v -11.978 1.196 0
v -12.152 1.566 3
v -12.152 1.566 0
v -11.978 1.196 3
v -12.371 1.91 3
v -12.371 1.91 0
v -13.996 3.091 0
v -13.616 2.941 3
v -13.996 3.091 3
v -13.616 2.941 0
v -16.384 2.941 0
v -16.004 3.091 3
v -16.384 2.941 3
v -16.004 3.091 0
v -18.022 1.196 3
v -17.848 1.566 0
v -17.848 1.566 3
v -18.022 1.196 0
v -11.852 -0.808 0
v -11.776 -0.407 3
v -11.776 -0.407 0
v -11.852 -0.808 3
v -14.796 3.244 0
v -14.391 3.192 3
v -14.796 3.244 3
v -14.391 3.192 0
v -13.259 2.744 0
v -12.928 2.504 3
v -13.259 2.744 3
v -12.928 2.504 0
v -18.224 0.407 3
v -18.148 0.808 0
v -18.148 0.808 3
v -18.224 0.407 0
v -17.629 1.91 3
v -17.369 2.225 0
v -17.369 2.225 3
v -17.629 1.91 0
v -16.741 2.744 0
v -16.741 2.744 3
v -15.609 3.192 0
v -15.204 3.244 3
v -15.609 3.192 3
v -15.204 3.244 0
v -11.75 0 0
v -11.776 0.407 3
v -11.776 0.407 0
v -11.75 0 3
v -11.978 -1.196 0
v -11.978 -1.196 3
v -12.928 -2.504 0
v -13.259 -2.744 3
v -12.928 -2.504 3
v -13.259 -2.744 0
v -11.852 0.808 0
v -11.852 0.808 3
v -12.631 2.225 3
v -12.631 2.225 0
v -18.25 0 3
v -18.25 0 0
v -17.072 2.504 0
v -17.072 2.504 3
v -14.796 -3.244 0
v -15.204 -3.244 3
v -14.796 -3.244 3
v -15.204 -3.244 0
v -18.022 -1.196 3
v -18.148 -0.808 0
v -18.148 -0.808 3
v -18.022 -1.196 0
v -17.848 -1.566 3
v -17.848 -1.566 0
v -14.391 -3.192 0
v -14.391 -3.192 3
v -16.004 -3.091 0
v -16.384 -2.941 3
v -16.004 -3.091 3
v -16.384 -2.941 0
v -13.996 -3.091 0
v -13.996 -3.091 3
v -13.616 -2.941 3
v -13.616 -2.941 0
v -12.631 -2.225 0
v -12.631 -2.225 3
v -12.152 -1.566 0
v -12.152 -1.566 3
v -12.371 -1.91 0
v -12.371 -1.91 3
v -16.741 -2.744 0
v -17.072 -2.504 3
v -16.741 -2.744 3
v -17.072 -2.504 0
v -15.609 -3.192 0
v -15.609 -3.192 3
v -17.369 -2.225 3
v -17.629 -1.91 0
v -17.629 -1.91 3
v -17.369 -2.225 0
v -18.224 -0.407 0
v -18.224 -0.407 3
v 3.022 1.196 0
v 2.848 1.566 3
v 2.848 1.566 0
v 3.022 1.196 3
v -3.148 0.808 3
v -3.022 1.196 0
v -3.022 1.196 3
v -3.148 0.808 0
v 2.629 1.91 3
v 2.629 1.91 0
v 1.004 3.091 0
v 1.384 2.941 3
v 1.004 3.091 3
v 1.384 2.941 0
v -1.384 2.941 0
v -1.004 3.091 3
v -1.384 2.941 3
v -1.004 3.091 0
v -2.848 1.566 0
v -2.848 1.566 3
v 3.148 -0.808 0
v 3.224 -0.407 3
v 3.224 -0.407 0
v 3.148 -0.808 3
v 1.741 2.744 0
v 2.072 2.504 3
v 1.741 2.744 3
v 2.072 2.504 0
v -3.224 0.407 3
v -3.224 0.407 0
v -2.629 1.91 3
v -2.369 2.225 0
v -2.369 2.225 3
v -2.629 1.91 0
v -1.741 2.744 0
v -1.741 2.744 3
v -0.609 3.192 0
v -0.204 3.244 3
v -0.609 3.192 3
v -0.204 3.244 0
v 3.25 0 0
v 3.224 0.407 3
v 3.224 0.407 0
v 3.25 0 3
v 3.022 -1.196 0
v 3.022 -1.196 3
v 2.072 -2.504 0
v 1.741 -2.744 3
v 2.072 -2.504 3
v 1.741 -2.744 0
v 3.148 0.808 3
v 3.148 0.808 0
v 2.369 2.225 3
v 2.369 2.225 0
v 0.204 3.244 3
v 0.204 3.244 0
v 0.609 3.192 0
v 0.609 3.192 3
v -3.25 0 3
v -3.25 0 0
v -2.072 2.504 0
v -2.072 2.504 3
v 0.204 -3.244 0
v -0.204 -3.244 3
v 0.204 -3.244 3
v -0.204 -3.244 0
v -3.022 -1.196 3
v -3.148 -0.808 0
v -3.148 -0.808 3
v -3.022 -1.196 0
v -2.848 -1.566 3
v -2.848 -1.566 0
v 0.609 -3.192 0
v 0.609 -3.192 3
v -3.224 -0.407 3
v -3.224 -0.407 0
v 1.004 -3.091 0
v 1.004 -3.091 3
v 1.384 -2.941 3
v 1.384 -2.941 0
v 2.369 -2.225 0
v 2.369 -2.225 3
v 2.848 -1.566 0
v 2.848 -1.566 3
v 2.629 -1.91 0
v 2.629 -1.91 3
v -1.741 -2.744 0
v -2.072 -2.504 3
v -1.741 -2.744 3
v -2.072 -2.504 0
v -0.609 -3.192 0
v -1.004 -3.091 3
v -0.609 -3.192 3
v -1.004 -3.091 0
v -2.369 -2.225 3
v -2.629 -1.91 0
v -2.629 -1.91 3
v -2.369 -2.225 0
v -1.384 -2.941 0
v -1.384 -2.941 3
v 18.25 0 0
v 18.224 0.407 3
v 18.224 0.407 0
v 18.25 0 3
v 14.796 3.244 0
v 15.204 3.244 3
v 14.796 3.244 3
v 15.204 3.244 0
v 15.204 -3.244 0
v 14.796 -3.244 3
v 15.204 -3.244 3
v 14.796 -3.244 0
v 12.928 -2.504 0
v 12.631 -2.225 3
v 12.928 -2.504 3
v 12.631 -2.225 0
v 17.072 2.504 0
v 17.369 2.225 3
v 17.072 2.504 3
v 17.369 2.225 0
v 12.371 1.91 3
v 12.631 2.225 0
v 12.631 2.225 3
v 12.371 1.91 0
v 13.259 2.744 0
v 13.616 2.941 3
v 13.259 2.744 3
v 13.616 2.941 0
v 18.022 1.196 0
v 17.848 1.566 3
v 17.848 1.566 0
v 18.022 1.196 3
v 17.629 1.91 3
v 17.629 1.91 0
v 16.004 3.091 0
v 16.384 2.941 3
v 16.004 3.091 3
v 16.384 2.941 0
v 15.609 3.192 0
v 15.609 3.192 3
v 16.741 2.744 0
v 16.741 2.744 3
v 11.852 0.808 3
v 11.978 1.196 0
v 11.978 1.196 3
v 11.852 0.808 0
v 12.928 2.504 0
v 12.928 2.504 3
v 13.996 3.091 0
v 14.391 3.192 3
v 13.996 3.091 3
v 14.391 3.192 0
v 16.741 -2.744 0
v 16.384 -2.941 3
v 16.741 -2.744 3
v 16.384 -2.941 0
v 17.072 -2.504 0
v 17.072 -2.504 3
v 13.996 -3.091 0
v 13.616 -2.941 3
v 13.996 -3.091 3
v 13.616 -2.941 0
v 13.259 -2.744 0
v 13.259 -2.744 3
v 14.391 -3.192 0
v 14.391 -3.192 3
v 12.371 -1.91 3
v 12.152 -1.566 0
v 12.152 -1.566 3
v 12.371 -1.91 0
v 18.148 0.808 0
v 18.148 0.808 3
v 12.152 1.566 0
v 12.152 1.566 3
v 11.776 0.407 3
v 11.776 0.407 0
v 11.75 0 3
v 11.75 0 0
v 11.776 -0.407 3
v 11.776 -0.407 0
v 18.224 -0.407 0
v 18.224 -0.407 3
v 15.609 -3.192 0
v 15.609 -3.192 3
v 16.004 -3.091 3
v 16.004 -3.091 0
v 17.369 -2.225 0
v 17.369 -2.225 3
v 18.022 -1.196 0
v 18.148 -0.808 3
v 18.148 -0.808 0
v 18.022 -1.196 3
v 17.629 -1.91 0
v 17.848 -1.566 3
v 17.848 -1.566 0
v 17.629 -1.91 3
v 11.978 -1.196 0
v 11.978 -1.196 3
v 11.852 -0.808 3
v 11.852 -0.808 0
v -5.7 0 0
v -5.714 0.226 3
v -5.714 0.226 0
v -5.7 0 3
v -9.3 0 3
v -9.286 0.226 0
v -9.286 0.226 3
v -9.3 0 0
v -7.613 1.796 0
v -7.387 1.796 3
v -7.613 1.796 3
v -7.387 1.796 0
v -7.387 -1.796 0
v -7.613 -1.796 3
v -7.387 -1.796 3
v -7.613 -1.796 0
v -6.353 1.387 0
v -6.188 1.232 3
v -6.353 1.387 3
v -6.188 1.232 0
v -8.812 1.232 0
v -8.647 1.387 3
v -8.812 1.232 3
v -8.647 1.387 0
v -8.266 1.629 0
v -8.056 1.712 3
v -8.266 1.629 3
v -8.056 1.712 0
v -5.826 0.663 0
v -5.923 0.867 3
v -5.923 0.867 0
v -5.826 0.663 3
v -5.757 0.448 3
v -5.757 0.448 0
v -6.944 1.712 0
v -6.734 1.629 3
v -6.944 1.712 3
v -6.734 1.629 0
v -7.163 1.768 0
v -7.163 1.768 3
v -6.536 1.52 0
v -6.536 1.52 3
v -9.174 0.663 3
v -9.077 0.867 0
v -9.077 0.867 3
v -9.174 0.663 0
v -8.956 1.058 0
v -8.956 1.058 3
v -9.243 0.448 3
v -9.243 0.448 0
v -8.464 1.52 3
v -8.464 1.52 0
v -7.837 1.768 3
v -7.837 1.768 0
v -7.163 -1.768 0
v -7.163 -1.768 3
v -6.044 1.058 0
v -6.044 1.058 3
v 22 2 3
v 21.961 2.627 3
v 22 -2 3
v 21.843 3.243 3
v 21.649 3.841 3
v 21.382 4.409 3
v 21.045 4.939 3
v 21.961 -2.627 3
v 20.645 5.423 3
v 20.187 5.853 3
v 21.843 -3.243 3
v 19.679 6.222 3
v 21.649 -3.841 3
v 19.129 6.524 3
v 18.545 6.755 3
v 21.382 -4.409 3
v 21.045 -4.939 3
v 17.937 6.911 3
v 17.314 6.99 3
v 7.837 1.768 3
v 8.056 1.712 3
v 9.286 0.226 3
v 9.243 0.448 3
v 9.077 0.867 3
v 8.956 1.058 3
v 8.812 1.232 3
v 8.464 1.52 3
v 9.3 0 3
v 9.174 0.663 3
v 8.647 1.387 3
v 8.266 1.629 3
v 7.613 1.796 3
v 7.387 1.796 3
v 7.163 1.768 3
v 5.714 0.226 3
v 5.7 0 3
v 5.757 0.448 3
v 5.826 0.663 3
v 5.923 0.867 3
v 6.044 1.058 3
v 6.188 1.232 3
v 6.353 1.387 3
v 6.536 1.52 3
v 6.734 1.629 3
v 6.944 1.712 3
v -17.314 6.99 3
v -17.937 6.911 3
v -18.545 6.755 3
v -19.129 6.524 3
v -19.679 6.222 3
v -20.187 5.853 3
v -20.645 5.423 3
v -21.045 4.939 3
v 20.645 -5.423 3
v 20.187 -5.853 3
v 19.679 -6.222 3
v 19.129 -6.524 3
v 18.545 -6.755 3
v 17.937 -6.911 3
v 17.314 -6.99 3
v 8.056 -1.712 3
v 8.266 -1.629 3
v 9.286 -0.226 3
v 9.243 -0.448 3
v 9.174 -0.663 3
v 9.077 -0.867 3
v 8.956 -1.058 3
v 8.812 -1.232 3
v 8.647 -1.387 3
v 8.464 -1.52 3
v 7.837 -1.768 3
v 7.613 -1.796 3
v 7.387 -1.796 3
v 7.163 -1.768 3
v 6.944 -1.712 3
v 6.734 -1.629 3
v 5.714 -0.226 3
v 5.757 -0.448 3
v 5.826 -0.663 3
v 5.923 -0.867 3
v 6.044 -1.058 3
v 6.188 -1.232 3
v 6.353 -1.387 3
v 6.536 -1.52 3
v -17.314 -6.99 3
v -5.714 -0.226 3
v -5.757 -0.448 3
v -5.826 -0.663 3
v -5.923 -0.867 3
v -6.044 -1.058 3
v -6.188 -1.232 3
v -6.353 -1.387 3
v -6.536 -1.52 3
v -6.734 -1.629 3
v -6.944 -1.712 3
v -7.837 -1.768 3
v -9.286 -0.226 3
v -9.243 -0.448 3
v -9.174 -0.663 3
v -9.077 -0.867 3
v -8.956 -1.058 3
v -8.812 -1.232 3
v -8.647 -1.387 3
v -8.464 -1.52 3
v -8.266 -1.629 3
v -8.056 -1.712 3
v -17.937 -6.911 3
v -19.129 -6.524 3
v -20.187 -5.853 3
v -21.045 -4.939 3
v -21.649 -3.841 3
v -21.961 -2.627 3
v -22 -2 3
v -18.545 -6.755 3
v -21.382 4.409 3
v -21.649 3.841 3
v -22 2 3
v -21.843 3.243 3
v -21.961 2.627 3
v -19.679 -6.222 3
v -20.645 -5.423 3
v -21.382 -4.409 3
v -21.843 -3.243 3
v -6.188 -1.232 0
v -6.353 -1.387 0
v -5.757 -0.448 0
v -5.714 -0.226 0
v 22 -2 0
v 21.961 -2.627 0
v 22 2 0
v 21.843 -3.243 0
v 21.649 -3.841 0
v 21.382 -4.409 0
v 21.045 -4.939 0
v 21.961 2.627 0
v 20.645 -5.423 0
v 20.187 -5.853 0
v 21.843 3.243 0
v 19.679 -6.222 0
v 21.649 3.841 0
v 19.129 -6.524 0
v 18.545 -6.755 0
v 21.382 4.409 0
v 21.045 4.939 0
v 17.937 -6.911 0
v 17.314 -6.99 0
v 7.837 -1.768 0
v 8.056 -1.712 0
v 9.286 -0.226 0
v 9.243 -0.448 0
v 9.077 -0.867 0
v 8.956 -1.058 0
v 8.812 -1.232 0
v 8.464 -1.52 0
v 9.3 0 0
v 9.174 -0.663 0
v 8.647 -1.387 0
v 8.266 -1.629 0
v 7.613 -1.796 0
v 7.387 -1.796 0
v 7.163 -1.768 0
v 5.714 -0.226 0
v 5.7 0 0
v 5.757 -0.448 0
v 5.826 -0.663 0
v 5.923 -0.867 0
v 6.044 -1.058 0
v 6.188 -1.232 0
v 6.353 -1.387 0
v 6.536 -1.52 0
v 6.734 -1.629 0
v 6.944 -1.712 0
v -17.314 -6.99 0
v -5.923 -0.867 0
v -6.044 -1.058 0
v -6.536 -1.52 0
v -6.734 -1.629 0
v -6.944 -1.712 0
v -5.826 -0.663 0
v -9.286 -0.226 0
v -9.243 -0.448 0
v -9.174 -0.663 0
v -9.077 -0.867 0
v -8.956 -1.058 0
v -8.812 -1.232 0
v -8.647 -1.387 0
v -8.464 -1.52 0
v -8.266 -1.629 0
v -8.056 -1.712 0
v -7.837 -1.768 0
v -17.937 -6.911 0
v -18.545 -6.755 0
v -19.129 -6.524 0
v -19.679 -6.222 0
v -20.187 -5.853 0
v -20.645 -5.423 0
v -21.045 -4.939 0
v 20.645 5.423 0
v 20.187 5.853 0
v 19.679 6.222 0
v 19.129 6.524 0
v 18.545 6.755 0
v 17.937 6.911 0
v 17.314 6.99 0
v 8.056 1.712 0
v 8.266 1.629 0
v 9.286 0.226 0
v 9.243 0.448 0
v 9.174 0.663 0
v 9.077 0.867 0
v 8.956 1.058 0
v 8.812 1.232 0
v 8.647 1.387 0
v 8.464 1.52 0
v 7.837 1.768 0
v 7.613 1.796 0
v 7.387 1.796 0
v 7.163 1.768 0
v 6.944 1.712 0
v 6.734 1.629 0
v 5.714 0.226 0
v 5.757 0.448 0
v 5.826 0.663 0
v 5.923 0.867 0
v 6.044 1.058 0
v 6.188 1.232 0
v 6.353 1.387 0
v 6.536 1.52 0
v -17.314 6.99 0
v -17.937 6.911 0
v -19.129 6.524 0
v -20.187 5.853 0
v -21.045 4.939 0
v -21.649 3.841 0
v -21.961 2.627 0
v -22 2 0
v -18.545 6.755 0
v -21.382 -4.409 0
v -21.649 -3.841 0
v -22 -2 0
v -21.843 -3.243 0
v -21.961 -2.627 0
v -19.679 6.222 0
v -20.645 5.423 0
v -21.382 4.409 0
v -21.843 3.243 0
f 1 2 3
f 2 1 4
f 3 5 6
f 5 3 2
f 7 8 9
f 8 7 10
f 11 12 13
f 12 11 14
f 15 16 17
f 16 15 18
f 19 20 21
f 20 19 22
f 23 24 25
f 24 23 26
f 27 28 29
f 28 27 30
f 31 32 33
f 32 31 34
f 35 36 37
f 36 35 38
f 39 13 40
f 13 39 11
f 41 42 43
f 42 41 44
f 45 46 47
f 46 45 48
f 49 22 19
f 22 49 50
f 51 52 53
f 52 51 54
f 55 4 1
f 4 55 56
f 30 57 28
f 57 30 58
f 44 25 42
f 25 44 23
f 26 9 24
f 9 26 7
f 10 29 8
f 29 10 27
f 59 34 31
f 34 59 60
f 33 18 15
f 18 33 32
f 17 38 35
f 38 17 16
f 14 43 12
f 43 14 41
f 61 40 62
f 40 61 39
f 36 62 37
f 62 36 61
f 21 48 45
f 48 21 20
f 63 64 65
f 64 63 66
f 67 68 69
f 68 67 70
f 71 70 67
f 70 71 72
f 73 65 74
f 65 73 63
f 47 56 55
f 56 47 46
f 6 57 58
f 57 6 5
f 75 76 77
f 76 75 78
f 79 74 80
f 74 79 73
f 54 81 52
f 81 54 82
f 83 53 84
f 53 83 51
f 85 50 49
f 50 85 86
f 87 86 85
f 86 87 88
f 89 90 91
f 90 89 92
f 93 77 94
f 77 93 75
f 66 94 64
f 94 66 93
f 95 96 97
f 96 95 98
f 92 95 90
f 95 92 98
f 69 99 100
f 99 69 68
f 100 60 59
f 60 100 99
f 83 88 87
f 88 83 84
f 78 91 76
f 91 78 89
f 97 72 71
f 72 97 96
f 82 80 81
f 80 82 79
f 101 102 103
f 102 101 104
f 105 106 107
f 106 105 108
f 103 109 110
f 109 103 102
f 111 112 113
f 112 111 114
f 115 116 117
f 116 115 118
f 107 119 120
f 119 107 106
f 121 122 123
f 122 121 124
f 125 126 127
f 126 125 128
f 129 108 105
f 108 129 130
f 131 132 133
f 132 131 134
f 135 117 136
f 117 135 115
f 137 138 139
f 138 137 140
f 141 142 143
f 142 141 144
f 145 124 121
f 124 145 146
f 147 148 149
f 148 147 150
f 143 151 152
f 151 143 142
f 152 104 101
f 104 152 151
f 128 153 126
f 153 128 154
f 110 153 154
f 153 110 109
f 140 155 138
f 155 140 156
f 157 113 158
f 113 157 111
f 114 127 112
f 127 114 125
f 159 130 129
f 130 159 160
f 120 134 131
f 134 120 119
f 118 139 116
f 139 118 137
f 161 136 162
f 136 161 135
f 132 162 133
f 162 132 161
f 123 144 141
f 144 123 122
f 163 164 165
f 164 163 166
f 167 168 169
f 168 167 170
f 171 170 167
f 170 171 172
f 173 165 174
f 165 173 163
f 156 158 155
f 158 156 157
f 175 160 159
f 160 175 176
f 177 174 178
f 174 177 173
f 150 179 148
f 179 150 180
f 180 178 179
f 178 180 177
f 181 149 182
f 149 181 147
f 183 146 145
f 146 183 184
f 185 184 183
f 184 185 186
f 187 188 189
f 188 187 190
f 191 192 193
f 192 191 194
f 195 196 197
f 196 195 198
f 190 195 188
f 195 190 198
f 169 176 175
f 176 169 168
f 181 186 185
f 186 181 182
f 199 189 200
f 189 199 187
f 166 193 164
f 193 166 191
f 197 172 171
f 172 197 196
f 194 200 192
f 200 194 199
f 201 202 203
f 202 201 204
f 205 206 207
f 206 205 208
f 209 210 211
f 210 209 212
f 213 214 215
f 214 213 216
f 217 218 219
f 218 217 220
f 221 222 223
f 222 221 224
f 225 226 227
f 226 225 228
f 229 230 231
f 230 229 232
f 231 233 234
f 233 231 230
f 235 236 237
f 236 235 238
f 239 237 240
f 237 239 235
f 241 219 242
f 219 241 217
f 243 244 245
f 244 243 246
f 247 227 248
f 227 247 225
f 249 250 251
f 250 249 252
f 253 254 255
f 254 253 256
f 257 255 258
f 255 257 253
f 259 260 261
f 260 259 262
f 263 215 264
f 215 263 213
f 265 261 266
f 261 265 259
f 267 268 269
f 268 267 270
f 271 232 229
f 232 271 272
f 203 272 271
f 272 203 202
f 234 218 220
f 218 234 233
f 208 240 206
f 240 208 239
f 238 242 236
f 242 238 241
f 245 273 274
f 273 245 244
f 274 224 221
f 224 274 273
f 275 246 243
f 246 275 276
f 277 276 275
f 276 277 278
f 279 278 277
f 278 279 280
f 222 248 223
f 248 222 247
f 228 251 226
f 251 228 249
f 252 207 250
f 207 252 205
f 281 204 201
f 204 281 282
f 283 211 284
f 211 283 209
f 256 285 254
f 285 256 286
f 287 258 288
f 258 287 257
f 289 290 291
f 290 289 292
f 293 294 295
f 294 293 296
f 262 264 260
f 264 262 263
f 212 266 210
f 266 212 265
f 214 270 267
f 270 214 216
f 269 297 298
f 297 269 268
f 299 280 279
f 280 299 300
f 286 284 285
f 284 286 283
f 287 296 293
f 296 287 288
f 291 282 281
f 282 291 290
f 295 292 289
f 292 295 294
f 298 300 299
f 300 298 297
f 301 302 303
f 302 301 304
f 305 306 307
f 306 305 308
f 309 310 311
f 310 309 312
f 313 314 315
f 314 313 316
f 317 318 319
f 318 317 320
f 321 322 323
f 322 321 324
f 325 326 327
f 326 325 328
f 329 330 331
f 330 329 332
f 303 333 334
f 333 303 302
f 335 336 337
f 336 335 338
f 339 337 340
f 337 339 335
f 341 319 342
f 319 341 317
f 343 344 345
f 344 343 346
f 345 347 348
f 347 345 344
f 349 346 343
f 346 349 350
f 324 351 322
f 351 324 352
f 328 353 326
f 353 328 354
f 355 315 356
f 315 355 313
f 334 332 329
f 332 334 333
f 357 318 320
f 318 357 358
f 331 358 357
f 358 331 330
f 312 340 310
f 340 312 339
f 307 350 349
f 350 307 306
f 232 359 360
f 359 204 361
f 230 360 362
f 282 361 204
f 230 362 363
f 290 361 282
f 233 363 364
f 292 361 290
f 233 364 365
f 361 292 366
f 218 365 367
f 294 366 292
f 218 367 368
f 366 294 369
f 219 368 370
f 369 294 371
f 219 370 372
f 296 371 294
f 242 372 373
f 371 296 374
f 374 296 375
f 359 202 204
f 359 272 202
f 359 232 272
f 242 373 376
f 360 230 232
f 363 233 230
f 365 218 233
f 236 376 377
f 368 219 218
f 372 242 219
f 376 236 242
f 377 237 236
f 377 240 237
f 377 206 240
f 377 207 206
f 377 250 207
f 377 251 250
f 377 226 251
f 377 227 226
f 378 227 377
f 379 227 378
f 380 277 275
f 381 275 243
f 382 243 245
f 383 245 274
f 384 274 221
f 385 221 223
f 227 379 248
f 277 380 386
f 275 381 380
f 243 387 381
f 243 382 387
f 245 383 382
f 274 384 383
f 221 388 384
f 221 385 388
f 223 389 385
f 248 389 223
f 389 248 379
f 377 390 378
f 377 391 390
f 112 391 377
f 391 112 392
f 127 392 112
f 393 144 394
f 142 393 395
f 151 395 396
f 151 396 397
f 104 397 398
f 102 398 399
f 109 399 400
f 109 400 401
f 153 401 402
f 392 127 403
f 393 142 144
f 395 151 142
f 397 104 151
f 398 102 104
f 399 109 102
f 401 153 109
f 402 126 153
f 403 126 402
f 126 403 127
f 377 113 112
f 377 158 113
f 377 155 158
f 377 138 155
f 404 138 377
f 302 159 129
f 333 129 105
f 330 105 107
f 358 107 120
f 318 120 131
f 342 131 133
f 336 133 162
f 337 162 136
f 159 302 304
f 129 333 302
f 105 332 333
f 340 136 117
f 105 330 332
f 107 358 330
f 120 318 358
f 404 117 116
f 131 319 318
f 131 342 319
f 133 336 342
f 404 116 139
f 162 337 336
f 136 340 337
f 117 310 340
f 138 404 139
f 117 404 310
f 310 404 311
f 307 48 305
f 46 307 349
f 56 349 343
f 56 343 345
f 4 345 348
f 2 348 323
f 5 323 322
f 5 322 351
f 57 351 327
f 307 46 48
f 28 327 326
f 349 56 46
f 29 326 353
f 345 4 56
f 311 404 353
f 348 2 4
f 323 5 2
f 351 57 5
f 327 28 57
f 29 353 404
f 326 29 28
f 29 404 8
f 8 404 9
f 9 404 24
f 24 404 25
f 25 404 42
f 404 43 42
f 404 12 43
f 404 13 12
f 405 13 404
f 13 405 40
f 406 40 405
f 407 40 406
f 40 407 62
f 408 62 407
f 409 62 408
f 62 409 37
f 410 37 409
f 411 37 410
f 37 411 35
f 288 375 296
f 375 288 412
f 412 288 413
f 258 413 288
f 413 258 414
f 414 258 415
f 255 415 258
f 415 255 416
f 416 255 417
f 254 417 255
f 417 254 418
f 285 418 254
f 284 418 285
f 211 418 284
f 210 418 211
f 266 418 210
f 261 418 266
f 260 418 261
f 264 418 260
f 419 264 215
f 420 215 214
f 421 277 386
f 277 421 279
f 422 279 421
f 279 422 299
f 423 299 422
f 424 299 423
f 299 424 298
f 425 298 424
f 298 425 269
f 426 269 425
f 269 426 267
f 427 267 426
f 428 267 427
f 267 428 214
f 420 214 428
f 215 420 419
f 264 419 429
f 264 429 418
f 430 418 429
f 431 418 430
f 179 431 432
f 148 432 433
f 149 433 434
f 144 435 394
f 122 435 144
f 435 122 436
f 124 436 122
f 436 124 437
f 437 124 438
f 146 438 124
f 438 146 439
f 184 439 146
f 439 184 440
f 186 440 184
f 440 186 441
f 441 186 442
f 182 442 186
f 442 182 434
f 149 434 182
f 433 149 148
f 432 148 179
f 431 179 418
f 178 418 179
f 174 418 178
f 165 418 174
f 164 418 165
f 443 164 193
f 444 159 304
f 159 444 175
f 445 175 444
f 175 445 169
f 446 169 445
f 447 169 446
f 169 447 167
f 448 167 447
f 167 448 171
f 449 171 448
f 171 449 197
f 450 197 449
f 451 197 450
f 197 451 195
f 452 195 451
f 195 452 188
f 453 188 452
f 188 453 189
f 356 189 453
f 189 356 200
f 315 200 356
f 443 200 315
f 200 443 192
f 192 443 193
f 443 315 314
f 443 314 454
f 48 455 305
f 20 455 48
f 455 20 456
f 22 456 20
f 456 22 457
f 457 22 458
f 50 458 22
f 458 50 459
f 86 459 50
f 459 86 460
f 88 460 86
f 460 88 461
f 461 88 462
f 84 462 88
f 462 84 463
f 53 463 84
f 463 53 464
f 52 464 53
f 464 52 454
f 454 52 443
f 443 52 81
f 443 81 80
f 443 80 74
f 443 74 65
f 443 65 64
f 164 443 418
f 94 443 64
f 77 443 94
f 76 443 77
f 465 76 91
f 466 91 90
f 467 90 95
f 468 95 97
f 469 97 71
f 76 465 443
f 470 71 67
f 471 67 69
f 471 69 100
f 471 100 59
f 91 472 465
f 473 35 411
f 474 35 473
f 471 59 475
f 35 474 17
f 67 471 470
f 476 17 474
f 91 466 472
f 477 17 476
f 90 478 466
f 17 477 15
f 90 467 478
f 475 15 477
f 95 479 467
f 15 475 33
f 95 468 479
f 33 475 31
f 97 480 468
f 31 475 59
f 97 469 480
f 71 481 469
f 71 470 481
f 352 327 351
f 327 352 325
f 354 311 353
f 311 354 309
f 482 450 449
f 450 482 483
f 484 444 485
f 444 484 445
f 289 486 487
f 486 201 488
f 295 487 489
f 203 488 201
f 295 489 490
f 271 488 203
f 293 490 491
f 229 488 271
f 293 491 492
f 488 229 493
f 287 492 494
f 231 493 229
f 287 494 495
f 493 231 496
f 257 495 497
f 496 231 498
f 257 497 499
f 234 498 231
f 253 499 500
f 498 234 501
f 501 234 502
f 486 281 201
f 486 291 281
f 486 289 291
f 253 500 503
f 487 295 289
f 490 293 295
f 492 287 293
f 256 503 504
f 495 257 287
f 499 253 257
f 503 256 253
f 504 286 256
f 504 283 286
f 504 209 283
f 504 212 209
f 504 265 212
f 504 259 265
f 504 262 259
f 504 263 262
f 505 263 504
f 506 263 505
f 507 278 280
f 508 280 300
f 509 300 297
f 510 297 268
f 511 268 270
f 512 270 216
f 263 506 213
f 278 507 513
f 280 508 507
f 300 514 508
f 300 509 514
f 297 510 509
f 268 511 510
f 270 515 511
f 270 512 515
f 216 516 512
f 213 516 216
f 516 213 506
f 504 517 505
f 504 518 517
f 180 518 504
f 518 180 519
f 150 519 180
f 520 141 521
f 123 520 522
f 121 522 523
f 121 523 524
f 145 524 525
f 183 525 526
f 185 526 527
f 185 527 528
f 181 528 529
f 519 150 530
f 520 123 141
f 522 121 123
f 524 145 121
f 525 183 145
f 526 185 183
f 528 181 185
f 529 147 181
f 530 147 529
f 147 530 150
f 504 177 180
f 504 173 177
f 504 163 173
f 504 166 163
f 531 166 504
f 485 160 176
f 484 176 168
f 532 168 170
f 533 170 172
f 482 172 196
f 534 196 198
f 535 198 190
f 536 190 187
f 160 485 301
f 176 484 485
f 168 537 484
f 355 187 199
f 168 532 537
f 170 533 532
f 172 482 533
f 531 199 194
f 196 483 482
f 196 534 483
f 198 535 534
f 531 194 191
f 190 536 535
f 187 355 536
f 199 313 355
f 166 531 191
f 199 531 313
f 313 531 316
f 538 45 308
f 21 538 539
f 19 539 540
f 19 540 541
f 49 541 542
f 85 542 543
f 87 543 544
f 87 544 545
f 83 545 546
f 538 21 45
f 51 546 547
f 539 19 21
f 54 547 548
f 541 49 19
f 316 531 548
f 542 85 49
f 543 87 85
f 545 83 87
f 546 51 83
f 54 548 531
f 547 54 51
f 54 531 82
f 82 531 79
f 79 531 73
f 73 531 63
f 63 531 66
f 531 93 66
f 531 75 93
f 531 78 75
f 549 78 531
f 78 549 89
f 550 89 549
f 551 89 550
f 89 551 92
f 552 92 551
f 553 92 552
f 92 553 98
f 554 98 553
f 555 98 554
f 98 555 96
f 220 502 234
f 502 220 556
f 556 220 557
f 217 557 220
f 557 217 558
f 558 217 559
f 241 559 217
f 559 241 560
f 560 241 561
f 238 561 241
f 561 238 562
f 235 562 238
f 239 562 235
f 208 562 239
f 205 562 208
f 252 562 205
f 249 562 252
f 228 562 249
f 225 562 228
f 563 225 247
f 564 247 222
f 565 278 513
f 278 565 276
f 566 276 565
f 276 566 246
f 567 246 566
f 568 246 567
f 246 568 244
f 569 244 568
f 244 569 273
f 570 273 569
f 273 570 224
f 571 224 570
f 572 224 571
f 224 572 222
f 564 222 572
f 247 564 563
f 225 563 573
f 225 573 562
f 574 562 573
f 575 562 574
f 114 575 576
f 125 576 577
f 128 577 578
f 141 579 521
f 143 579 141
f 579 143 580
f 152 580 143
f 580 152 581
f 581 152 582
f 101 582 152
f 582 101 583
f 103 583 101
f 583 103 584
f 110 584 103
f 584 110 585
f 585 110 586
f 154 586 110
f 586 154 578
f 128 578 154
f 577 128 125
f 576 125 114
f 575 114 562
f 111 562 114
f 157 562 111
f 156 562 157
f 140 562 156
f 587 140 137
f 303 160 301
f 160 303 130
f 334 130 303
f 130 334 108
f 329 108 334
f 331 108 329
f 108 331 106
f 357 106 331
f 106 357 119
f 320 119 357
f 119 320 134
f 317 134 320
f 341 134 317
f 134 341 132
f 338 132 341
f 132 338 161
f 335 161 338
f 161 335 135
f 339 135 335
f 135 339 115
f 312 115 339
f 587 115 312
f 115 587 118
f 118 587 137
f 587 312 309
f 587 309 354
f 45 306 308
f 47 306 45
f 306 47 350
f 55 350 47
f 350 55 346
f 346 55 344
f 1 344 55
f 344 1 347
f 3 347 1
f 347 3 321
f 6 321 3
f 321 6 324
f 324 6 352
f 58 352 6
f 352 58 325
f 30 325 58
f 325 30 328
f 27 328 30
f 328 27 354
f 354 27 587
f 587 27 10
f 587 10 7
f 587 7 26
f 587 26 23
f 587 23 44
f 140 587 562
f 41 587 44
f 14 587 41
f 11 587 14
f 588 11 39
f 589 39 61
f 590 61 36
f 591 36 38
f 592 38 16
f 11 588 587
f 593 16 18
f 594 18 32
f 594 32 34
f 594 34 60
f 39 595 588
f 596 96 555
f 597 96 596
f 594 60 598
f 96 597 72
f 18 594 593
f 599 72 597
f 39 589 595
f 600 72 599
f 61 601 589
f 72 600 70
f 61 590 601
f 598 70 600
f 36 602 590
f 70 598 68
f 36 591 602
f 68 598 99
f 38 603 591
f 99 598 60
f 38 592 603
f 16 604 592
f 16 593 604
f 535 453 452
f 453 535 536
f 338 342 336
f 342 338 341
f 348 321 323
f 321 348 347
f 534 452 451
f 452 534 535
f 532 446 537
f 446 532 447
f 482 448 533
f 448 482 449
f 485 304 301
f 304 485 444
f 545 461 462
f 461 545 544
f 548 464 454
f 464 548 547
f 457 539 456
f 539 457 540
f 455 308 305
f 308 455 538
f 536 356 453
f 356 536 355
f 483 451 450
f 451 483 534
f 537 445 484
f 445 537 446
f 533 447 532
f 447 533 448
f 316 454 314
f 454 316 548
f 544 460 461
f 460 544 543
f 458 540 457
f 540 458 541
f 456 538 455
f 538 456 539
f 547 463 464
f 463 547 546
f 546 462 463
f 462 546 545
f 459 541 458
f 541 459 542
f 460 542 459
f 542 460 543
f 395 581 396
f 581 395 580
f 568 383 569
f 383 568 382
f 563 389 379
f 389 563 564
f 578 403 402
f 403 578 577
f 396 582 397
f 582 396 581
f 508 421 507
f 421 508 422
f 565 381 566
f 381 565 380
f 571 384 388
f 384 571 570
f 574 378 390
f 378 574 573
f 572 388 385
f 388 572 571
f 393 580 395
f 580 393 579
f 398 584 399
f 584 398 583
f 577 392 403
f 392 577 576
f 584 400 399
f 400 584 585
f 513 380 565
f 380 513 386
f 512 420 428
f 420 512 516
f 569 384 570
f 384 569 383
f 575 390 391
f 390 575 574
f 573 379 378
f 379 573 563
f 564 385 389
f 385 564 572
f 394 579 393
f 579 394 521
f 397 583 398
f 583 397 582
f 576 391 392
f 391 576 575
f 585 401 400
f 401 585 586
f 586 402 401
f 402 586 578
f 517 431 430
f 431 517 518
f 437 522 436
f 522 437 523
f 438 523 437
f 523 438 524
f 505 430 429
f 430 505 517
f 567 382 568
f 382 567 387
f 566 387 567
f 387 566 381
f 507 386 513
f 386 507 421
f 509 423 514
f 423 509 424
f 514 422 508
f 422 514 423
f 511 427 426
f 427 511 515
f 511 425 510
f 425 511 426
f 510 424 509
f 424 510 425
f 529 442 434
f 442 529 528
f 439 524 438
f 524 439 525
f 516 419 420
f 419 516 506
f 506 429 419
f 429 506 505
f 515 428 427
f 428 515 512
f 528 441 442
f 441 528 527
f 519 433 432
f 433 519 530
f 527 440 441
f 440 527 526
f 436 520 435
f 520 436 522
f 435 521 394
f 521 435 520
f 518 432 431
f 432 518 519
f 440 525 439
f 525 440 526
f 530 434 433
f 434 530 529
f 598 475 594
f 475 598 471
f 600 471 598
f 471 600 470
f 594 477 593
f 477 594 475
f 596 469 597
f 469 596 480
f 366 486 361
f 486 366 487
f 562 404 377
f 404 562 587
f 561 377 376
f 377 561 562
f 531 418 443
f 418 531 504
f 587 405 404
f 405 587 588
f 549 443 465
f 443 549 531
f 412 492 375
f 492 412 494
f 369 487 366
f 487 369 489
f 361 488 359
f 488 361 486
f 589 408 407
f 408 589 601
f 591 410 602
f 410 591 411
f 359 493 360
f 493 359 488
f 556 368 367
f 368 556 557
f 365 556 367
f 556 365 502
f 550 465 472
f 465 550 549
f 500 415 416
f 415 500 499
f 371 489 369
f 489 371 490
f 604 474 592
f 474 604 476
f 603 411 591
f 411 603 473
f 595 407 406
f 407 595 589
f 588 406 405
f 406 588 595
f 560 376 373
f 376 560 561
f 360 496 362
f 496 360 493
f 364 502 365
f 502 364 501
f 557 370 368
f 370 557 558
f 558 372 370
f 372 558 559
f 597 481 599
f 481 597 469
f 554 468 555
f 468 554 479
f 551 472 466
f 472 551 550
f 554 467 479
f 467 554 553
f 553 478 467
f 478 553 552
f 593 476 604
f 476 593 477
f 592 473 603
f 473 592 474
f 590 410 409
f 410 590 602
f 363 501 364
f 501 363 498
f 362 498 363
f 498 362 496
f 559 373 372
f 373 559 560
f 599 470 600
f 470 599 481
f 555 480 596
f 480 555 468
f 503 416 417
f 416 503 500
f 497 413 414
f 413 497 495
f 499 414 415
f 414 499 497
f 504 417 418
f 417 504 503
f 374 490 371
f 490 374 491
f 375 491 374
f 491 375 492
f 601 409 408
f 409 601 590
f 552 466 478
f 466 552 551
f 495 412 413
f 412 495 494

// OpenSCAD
$fn = 50;


difference() {
	union() {
		hull() {
			translate(v = [-17.0000000000, 2.0000000000, 0]) {
				cylinder(h = 3, r = 5);
			}
			translate(v = [17.0000000000, 2.0000000000, 0]) {
				cylinder(h = 3, r = 5);
			}
			translate(v = [-17.0000000000, -2.0000000000, 0]) {
				cylinder(h = 3, r = 5);
			}
			translate(v = [17.0000000000, -2.0000000000, 0]) {
				cylinder(h = 3, r = 5);
			}
		}
	}
	union() {
		translate(v = [-15.0000000000, 0.0000000000, 0]) {
			translate(v = [0, 0, -100]) {
				cylinder(h = 200, r = 3.2500000000);
			}
		}
		translate(v = [0, 0, -100]) {
			cylinder(h = 200, r = 3.2500000000);
		}
		translate(v = [15.0000000000, 0.0000000000, 0]) {
			translate(v = [0, 0, -100]) {
				cylinder(h = 200, r = 3.2500000000);
			}
		}
		translate(v = [-15.0000000000, 0.0000000000, 0]) {
			translate(v = [0, 0, -100]) {
				cylinder(h = 200, r = 1.8000000000);
			}
		}
		translate(v = [-7.5000000000, 0.0000000000, 0]) {
			translate(v = [0, 0, -100]) {
				cylinder(h = 200, r = 1.8000000000);
			}
		}
		translate(v = [0, 0, -100]) {
			cylinder(h = 200, r = 1.8000000000);
		}
		translate(v = [7.5000000000, 0.0000000000, 0]) {
			translate(v = [0, 0, -100]) {
				cylinder(h = 200, r = 1.8000000000);
			}
		}
		translate(v = [15.0000000000, 0.0000000000, 0]) {
			translate(v = [0, 0, -100]) {
				cylinder(h = 200, r = 1.8000000000);
			}
		}
	}
}
